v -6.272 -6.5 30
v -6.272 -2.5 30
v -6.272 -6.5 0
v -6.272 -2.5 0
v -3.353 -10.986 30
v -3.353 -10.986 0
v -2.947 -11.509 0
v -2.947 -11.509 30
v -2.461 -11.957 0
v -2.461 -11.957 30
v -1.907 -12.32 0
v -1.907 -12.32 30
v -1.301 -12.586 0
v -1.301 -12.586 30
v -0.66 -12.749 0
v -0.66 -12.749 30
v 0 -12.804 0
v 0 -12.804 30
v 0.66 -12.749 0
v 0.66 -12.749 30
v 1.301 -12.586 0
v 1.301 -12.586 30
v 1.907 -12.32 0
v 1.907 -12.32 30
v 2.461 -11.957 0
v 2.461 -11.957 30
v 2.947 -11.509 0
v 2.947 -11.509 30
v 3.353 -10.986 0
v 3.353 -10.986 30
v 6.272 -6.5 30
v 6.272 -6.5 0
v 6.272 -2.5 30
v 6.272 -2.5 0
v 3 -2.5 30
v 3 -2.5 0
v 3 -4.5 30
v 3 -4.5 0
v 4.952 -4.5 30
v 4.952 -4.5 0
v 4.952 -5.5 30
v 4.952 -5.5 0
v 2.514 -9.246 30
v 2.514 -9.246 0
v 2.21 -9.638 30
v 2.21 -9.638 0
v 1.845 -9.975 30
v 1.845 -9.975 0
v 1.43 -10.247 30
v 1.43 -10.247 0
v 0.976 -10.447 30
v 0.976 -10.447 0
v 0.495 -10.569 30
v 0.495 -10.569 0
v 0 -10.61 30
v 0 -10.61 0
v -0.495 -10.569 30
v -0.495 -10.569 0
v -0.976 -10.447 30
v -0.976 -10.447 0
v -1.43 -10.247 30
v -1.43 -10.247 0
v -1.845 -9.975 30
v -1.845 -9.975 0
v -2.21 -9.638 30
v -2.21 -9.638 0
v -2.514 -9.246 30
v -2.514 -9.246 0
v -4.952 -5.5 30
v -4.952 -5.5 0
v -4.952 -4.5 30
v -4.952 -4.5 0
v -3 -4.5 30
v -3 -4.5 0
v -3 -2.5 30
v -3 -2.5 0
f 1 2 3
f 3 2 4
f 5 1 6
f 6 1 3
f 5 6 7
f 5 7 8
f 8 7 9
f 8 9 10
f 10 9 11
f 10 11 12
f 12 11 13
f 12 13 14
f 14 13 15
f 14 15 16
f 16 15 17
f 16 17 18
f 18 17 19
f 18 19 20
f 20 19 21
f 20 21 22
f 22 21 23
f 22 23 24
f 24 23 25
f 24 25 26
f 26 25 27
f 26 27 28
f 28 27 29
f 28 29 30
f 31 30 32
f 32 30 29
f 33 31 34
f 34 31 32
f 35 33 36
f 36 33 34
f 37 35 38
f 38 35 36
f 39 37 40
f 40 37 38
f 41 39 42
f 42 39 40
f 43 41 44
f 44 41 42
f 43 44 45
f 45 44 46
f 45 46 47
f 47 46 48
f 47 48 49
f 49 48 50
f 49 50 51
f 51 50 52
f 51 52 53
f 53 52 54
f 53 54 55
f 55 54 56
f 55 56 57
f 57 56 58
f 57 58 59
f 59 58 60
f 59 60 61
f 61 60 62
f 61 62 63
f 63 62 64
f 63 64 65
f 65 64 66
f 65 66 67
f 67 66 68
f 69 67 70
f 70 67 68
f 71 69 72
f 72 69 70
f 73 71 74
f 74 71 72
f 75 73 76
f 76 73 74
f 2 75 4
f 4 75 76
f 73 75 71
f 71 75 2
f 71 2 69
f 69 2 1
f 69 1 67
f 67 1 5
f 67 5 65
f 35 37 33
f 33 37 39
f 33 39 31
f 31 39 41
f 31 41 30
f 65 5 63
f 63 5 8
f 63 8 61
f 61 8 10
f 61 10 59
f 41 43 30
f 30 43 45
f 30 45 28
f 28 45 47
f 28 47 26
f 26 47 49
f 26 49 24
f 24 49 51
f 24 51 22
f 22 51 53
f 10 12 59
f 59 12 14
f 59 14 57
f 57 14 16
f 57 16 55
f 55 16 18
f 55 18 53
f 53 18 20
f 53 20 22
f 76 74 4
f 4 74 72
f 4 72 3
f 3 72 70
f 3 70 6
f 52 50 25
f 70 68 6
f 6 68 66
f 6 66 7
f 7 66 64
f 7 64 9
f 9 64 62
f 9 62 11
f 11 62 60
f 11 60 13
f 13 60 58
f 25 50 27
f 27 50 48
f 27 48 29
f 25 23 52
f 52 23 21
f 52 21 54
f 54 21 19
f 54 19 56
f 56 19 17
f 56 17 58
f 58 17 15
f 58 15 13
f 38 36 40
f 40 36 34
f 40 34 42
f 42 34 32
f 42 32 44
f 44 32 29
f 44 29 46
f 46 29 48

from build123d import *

# Parameters (mm, degrees)
BOSS_EXTRUDE2_DEPTH = 30


with BuildPart() as part:
    # Sketch1 → Boss-Extrude2 (new body)
    with BuildSketch(Plane.XY):
        with BuildLine():
            Line((3, -8.5), (4.952380952, -5.5))
            Line((4.952380952, -5.5), (4.952380952, -4.5))
            Line((4.952380952, -4.5), (3, -4.5))
            Line((3, -4.5), (3, -2.5))
            Line((3, -2.5), (6.271768379, -2.5))
            Line((6.271768379, -2.5), (6.271768379, -6.5))
            Line((6.271768379, -6.5), (3.35255813, -10.985615749))
            ThreePointArc((3.35255813, -10.985615749), (0, -12.803792203), (-3.35255813, -10.985615749))
            Line((-3.35255813, -10.985615749), (-6.271768379, -6.5))
            Line((-6.271768379, -6.5), (-6.271768379, -2.5))
            Line((-6.271768379, -2.5), (-3, -2.5))
            Line((-3, -2.5), (-3, -4.5))
            Line((-3, -4.5), (-4.952380952, -4.5))
            Line((-4.952380952, -4.5), (-4.952380952, -5.5))
            Line((-4.952380952, -5.5), (-3, -8.5))
            Line((-3, -8.5), (-2.514418598, -9.246137277))
            ThreePointArc((-2.514418598, -9.246137277), (0, -10.609769618), (2.514418598, -9.246137277))
            Line((2.514418598, -9.246137277), (3, -8.5))
        make_face()
    extrude(amount=BOSS_EXTRUDE2_DEPTH)


solid = part.part
